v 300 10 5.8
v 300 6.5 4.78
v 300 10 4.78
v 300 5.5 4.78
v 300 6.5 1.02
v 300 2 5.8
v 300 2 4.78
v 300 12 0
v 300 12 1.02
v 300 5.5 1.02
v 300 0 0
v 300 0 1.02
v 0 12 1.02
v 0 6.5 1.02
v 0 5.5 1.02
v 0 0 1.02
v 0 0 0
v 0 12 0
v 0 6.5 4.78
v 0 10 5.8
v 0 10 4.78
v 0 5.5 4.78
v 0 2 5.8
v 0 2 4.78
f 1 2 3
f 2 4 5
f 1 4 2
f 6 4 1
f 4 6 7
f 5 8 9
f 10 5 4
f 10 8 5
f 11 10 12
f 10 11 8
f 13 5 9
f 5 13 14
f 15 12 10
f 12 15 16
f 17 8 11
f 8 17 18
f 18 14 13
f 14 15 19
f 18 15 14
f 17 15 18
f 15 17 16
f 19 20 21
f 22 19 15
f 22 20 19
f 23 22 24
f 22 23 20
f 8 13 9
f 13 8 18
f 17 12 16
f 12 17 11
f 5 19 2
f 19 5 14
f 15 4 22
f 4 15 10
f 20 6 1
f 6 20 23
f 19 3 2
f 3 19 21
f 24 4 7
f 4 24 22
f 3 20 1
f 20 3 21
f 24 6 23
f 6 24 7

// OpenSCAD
include <parameters.scad>

module rail_geometry() {
    union() {
        // Cabinet mounting base; its rear face is exactly Z=0.
        cube([rail_length, rail_height, wall_thickness + join_overlap]);

        // Central web. It overlaps the base and flange by join_overlap.
        translate([0, rail_web_y0, rail_web_z0])
            cube([rail_length, wall_thickness, rail_web_z1 - rail_web_z0]);

        // Person-facing load flange.
        translate([0, rail_flange_y0, rail_flange_z0 - join_overlap])
            cube([rail_length, rail_flange_y1 - rail_flange_y0,
                  rail_flange_z1 - rail_flange_z0 + join_overlap]);
    }
}

module rail_section_preview(section_x=20) {
    intersection() {
        rail_geometry();
        translate([rail_length / 2 - section_x / 2, -1, -1])
            cube([section_x, rail_height + 2, rail_depth_target + 2]);
    }
}

// Standalone printable entry point. debug_section is intentionally a source
// inspection mode, not a modifier on the final print geometry.
if (debug_section)
    rail_section_preview();
else
    rail_geometry();
